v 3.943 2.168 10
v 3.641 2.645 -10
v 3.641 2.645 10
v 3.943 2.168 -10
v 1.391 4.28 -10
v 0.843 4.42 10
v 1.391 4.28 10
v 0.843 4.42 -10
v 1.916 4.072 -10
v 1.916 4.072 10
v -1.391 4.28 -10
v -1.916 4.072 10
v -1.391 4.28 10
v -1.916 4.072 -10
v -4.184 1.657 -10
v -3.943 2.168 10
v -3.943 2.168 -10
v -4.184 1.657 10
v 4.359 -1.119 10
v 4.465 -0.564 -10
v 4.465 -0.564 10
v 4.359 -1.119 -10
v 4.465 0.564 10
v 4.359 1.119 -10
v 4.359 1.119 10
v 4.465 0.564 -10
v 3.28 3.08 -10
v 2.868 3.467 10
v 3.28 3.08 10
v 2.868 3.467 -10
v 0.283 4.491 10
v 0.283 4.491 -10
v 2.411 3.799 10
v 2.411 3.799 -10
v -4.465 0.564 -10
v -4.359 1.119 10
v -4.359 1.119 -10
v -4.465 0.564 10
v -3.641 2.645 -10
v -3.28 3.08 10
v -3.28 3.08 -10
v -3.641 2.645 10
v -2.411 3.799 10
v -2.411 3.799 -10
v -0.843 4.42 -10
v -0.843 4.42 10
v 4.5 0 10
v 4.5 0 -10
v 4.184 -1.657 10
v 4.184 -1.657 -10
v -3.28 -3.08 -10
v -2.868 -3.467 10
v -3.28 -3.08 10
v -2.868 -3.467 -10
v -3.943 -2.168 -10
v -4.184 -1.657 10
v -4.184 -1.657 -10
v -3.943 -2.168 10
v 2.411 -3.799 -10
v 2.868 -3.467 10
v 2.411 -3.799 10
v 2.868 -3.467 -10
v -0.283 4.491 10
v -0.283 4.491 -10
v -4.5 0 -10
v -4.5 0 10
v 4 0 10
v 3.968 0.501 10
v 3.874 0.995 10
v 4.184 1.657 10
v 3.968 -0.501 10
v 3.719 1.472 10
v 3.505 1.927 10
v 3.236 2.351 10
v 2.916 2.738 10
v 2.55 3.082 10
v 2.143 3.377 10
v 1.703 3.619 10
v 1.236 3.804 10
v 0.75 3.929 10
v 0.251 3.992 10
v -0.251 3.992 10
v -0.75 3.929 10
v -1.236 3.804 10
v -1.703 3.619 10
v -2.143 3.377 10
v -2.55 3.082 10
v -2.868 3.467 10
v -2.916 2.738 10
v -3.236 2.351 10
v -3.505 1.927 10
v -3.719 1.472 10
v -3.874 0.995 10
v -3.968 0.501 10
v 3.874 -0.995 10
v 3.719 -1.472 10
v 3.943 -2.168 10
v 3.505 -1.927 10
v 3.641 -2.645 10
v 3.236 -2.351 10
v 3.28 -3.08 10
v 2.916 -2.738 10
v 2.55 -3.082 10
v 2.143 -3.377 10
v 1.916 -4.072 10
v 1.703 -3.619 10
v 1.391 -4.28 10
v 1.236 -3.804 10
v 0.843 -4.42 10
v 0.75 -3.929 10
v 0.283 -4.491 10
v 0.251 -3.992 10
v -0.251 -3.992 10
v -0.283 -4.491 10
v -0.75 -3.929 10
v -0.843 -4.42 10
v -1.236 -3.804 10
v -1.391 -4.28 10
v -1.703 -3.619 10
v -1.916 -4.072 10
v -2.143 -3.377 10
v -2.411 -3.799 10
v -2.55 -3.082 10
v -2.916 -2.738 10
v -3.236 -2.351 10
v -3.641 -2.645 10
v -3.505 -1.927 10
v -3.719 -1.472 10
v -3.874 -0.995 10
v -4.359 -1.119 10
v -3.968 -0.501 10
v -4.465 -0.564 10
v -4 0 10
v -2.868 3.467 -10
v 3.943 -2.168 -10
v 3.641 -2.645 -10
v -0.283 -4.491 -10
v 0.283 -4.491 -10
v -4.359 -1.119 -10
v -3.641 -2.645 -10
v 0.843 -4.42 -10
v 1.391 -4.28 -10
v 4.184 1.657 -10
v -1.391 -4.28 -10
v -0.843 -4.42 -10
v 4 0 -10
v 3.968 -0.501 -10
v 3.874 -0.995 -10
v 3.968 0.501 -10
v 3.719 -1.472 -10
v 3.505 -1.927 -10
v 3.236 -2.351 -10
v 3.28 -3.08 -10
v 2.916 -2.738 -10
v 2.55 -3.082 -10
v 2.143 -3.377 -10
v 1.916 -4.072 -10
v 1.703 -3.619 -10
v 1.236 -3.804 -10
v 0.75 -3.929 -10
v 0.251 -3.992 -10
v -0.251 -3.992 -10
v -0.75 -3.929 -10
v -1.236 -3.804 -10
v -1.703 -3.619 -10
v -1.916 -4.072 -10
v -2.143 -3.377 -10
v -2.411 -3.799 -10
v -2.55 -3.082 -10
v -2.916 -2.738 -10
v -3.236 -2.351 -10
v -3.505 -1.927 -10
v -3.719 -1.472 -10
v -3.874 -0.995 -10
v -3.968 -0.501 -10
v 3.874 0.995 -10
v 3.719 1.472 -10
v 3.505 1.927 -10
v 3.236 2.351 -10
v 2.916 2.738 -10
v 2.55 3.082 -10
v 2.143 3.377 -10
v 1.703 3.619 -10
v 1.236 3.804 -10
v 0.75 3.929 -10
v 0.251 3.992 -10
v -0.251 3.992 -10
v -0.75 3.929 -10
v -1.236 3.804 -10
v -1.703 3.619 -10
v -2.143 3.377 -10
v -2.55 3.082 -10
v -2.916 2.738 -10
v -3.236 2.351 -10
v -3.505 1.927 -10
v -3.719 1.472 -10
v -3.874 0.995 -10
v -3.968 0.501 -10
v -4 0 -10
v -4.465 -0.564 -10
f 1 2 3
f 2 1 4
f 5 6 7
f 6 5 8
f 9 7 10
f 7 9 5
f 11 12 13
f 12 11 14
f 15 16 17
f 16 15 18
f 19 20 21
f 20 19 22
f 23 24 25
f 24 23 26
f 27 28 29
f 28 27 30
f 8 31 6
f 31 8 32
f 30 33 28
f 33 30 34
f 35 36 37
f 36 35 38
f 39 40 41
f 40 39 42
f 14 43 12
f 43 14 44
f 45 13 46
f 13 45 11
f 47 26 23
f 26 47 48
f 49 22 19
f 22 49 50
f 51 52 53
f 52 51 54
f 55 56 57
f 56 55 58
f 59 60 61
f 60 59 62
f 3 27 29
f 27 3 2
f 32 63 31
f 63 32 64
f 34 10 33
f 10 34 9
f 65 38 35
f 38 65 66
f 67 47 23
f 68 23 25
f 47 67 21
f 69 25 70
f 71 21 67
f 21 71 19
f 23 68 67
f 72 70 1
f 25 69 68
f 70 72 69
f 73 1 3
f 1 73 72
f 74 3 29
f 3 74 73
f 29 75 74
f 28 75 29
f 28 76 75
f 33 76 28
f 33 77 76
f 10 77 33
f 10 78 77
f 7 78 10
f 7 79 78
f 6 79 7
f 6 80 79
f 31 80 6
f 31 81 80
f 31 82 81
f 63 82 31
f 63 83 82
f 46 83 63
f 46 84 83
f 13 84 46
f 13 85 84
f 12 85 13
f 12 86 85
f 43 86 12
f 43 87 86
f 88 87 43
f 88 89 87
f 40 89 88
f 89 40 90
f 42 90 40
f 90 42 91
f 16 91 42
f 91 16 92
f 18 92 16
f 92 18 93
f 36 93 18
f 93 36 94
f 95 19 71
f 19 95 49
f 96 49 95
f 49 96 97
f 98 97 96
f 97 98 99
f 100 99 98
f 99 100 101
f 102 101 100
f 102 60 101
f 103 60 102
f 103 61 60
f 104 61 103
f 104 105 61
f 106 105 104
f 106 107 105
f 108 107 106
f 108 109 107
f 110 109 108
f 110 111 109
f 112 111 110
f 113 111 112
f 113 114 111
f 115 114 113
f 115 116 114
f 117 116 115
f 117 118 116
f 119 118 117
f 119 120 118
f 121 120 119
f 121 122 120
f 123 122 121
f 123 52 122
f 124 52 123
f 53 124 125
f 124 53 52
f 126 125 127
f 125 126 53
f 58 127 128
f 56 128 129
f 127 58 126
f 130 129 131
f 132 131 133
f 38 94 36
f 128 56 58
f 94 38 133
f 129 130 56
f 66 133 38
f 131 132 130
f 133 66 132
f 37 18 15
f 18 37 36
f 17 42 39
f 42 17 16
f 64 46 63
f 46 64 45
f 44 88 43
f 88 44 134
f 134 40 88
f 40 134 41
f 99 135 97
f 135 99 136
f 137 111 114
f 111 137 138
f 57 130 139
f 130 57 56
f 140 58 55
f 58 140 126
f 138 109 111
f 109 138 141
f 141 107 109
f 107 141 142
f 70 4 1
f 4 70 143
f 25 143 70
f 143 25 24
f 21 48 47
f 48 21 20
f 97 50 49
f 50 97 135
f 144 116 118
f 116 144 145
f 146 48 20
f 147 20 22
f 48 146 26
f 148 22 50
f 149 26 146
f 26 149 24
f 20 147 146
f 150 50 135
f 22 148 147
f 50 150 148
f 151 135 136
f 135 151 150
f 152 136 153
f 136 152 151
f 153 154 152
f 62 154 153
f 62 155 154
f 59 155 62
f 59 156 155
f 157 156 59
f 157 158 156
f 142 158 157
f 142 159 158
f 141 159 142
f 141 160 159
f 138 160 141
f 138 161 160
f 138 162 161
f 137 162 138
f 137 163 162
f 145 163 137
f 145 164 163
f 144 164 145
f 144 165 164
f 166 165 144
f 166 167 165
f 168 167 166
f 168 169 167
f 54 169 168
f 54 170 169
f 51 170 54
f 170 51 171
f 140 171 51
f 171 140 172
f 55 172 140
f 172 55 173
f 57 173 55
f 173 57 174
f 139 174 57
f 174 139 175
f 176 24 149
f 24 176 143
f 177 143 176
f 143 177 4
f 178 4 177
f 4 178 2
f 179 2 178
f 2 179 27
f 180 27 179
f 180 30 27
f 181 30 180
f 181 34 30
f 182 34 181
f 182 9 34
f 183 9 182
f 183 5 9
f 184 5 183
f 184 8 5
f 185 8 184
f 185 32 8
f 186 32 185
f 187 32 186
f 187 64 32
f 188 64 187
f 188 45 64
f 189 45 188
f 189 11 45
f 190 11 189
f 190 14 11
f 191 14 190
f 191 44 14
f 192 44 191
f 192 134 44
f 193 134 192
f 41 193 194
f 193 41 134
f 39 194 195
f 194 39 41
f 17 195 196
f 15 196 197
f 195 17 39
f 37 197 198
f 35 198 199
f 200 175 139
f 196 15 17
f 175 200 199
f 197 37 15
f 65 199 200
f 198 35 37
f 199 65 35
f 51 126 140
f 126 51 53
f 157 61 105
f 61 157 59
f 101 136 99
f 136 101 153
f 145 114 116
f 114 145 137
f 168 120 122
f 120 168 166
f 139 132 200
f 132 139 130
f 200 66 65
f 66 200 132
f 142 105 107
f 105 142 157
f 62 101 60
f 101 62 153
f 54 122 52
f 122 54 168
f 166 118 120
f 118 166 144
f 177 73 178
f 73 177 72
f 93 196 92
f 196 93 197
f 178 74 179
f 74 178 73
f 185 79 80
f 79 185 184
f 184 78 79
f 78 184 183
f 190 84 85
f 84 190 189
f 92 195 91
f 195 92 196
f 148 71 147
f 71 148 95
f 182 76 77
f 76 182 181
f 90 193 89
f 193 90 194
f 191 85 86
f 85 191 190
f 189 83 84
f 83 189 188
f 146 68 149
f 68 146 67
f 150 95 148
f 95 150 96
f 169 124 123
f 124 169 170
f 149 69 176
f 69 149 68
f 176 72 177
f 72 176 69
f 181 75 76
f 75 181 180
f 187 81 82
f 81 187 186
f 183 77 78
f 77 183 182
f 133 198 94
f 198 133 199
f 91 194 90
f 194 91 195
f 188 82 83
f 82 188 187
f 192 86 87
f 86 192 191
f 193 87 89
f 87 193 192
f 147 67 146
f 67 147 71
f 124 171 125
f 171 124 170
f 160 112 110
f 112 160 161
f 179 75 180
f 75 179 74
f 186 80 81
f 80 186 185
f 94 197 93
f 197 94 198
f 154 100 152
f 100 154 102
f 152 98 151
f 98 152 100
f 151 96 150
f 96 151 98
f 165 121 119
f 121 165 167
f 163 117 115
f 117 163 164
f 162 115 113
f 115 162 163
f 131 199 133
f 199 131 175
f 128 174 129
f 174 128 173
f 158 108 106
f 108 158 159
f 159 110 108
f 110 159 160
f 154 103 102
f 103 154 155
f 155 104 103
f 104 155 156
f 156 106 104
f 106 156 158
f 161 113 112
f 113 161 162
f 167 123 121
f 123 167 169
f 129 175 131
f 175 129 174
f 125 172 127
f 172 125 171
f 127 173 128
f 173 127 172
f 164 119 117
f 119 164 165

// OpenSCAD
$fn = 50;


difference() {
	union() {
		translate(v = [0, 0, -10.0000000000]) {
			cylinder(h = 20, r = 4.5000000000);
		}
	}
	union() {
		translate(v = [0, 0, -100.0000000000]) {
			cylinder(h = 200, r = 4);
		}
	}
}
